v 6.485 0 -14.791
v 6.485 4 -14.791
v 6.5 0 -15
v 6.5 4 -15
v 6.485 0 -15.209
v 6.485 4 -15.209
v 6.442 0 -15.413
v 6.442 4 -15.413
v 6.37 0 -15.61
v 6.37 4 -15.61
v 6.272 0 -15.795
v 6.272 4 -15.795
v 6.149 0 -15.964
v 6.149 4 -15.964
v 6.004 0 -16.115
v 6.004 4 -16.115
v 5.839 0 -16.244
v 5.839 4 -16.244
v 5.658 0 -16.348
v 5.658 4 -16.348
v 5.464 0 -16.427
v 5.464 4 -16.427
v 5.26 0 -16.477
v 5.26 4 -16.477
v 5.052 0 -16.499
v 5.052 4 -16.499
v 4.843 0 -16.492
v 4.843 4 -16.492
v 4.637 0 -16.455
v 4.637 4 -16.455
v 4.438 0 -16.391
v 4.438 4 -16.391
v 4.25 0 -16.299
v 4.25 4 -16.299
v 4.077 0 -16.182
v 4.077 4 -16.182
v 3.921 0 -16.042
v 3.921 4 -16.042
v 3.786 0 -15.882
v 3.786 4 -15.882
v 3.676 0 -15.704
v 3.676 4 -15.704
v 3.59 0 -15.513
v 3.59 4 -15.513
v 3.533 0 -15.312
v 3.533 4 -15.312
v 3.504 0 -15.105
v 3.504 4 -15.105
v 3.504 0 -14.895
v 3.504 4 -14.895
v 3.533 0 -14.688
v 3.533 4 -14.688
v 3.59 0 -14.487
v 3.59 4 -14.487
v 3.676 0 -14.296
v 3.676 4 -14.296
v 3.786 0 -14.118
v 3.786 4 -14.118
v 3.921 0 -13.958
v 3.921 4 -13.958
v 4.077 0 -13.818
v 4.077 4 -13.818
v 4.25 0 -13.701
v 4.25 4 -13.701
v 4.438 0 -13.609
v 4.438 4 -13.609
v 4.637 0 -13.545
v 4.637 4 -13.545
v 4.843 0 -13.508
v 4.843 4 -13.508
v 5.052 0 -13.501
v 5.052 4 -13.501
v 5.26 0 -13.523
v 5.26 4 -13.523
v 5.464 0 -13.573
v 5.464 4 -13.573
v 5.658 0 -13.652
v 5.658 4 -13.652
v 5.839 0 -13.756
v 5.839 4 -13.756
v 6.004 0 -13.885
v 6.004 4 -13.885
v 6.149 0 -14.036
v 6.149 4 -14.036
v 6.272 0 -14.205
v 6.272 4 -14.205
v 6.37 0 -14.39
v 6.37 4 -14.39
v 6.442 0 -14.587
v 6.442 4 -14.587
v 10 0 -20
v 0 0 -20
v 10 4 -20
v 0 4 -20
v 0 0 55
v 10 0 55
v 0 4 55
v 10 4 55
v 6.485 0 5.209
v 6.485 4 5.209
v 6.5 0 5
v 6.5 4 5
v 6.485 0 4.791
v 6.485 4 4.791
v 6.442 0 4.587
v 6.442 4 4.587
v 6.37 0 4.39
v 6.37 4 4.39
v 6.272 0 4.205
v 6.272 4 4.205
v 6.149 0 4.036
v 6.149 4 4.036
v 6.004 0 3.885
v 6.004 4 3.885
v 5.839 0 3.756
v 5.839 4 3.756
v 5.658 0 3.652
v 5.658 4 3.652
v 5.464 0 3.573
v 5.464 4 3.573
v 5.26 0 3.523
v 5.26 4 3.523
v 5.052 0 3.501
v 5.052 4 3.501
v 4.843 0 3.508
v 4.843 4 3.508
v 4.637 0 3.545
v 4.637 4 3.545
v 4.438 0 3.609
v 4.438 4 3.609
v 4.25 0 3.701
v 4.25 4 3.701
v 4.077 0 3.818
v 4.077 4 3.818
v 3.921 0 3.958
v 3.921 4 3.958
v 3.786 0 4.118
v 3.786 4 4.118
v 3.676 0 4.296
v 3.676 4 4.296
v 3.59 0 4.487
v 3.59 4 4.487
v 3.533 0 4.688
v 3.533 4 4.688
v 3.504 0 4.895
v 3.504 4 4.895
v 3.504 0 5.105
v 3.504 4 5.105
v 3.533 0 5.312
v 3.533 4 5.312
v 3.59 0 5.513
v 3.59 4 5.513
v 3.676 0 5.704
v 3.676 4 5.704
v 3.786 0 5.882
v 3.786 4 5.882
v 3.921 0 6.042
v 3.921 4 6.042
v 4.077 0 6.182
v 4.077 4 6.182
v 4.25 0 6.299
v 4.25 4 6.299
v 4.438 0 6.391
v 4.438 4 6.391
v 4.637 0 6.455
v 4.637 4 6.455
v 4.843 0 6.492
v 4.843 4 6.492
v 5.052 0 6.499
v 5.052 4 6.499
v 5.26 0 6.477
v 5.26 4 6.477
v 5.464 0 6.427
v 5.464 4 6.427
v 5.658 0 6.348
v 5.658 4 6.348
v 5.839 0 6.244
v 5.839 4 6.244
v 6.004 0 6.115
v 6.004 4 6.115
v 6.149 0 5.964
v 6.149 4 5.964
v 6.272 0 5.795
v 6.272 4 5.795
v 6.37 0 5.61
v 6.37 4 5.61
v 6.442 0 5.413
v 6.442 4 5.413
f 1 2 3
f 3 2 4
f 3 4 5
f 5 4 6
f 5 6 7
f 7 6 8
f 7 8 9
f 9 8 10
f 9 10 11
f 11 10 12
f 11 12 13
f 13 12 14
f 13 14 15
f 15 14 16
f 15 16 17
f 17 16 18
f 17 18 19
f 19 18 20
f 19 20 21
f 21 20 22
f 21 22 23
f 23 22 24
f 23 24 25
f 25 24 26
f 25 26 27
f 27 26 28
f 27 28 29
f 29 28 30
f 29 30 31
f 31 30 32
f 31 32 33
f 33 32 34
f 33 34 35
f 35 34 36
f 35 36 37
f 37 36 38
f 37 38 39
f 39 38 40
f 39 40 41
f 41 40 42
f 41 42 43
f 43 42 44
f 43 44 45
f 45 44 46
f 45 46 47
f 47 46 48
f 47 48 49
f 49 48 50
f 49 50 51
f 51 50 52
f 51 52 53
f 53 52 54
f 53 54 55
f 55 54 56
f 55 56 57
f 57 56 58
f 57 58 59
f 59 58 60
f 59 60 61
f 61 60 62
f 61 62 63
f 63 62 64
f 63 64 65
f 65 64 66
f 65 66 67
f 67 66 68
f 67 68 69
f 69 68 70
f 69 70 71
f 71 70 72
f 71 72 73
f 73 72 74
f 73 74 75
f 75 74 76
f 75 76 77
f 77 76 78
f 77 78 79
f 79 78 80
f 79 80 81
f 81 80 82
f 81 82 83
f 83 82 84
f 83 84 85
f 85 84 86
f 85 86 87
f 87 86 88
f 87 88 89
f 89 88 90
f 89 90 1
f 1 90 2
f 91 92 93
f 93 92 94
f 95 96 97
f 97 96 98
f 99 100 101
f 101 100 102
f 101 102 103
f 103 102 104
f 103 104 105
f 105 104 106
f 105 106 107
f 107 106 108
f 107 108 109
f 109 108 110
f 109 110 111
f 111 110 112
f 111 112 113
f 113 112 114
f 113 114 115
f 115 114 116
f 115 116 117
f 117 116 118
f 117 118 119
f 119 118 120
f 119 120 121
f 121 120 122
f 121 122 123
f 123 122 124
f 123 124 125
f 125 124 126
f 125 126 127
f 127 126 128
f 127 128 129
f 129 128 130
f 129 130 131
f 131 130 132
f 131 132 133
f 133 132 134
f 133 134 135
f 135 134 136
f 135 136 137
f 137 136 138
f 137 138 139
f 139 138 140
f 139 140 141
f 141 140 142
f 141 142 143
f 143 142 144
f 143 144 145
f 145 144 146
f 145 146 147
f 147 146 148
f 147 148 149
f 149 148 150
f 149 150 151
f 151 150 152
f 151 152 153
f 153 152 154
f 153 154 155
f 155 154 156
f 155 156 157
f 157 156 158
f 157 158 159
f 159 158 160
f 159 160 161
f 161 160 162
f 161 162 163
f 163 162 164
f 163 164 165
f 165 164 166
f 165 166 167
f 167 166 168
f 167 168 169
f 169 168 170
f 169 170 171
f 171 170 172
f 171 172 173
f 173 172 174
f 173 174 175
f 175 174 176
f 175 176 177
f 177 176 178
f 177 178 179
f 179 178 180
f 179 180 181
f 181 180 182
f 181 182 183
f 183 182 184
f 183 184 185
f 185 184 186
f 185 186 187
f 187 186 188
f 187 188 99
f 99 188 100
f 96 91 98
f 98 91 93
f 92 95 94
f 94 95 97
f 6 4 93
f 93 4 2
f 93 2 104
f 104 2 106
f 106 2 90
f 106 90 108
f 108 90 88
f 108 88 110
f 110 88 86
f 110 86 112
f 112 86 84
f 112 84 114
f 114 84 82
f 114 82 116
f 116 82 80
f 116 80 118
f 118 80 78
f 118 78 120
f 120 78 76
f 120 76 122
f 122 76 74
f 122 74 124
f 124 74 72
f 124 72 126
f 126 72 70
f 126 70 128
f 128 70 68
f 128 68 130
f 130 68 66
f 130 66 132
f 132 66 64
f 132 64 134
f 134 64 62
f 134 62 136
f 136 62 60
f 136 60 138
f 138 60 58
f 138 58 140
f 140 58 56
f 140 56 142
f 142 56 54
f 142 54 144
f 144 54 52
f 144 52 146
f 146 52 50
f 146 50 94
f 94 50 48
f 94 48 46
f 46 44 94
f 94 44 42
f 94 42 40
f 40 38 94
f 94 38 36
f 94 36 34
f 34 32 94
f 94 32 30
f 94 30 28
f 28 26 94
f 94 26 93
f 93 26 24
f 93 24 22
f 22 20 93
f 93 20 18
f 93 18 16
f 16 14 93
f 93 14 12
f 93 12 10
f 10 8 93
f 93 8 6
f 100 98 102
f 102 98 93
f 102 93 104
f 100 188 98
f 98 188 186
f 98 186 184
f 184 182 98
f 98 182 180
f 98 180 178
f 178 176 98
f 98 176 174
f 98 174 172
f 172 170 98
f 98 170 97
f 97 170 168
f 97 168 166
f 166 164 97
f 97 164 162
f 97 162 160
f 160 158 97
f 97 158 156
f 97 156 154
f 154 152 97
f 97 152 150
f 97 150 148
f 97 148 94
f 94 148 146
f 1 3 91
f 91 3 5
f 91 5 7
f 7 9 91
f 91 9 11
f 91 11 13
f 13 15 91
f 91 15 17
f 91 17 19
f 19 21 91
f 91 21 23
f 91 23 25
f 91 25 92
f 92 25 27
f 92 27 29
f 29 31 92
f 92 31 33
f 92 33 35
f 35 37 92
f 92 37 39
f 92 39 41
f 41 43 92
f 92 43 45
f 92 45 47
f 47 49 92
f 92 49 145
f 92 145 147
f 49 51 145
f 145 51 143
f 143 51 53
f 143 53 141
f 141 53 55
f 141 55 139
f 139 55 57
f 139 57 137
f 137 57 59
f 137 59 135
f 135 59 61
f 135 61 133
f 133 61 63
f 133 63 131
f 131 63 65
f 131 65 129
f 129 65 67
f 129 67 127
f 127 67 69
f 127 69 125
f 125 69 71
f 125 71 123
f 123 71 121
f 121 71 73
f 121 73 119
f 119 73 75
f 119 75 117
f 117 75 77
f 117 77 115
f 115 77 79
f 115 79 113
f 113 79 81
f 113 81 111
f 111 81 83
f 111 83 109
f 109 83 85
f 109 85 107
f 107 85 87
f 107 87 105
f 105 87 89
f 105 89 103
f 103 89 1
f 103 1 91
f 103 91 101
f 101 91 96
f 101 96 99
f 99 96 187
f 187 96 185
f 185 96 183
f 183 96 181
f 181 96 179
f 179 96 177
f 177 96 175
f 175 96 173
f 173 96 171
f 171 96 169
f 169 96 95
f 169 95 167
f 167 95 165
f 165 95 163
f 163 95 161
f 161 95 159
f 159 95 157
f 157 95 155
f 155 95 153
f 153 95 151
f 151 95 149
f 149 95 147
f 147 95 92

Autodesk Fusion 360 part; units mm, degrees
sketch "Skizze1" plane through (0, 0, 0) normal (0, 1, 0) x (1, 0, 0)
  line L0 (0, 0) -> (10, 0)
  line L1 (10, 0) -> (10, -40)
  line L2 (0, 0) -> (0, -40)
  line L3 (10, -40) -> (10, -45)
  line L4 (0, -40) -> (0, -45)
  line L5 (0, -45) -> (10, -45)
extrude "Extrusion1" add sketch "Skizze1" along normal blind 4
sketch "Skizze2" plane through (0, 4, 0) normal (0, 1, 0) x (-1, 0, 0)
  line L0 (0, 0) -> (0, 45)
  line L1 (0, 45) -> (-10, 45)
  line L2 (-10, 45) -> (-10, 0)
  line L3 (-10, 0) -> (0, 0)
  circle A0 centre (-5, 5) radius 1.5
  dimension "d3" = 3
extrude "Extrusion2" cut sketch "Skizze2" against normal blind 24 contours A0
extrude "Extrusion3" add 1 faces at (3.3333, 1.3333, 45) along direction (0, 0, 1) blind 10
sketch "Skizze3" plane through (0, 4, 0) normal (0, 1, 0) x (-1, 0, 0)
  circle A0 centre (-5, 5) radius 1.5
  line L0 (0, 0) -> (0, 55)
  line L1 (0, 55) -> (-10, 55)
  line L2 (-10, 55) -> (-10, 0)
  line L3 (-10, 0) -> (0, 0)
extrude "Extrusion4" add 1 faces at (3.3333, 1.3333, 0) along direction (0, 0, -1) blind 20
sketch "Skizze4" plane through (0, 4, 0) normal (0, 1, 0) x (-1, 0, 0)
  circle A0 centre (-5, 5) radius 1.5
  line L0 (0, -20) -> (0, 55)
  line L1 (0, 55) -> (-10, 55)
  line L2 (-10, 55) -> (-10, -20)
  line L3 (-10, -20) -> (0, -20)
  circle A1 centre (-5, -15) radius 1.5
  dimension "d10" = 3
extrude "Extrusion5" cut sketch "Skizze4" against normal blind 15 contours A1
